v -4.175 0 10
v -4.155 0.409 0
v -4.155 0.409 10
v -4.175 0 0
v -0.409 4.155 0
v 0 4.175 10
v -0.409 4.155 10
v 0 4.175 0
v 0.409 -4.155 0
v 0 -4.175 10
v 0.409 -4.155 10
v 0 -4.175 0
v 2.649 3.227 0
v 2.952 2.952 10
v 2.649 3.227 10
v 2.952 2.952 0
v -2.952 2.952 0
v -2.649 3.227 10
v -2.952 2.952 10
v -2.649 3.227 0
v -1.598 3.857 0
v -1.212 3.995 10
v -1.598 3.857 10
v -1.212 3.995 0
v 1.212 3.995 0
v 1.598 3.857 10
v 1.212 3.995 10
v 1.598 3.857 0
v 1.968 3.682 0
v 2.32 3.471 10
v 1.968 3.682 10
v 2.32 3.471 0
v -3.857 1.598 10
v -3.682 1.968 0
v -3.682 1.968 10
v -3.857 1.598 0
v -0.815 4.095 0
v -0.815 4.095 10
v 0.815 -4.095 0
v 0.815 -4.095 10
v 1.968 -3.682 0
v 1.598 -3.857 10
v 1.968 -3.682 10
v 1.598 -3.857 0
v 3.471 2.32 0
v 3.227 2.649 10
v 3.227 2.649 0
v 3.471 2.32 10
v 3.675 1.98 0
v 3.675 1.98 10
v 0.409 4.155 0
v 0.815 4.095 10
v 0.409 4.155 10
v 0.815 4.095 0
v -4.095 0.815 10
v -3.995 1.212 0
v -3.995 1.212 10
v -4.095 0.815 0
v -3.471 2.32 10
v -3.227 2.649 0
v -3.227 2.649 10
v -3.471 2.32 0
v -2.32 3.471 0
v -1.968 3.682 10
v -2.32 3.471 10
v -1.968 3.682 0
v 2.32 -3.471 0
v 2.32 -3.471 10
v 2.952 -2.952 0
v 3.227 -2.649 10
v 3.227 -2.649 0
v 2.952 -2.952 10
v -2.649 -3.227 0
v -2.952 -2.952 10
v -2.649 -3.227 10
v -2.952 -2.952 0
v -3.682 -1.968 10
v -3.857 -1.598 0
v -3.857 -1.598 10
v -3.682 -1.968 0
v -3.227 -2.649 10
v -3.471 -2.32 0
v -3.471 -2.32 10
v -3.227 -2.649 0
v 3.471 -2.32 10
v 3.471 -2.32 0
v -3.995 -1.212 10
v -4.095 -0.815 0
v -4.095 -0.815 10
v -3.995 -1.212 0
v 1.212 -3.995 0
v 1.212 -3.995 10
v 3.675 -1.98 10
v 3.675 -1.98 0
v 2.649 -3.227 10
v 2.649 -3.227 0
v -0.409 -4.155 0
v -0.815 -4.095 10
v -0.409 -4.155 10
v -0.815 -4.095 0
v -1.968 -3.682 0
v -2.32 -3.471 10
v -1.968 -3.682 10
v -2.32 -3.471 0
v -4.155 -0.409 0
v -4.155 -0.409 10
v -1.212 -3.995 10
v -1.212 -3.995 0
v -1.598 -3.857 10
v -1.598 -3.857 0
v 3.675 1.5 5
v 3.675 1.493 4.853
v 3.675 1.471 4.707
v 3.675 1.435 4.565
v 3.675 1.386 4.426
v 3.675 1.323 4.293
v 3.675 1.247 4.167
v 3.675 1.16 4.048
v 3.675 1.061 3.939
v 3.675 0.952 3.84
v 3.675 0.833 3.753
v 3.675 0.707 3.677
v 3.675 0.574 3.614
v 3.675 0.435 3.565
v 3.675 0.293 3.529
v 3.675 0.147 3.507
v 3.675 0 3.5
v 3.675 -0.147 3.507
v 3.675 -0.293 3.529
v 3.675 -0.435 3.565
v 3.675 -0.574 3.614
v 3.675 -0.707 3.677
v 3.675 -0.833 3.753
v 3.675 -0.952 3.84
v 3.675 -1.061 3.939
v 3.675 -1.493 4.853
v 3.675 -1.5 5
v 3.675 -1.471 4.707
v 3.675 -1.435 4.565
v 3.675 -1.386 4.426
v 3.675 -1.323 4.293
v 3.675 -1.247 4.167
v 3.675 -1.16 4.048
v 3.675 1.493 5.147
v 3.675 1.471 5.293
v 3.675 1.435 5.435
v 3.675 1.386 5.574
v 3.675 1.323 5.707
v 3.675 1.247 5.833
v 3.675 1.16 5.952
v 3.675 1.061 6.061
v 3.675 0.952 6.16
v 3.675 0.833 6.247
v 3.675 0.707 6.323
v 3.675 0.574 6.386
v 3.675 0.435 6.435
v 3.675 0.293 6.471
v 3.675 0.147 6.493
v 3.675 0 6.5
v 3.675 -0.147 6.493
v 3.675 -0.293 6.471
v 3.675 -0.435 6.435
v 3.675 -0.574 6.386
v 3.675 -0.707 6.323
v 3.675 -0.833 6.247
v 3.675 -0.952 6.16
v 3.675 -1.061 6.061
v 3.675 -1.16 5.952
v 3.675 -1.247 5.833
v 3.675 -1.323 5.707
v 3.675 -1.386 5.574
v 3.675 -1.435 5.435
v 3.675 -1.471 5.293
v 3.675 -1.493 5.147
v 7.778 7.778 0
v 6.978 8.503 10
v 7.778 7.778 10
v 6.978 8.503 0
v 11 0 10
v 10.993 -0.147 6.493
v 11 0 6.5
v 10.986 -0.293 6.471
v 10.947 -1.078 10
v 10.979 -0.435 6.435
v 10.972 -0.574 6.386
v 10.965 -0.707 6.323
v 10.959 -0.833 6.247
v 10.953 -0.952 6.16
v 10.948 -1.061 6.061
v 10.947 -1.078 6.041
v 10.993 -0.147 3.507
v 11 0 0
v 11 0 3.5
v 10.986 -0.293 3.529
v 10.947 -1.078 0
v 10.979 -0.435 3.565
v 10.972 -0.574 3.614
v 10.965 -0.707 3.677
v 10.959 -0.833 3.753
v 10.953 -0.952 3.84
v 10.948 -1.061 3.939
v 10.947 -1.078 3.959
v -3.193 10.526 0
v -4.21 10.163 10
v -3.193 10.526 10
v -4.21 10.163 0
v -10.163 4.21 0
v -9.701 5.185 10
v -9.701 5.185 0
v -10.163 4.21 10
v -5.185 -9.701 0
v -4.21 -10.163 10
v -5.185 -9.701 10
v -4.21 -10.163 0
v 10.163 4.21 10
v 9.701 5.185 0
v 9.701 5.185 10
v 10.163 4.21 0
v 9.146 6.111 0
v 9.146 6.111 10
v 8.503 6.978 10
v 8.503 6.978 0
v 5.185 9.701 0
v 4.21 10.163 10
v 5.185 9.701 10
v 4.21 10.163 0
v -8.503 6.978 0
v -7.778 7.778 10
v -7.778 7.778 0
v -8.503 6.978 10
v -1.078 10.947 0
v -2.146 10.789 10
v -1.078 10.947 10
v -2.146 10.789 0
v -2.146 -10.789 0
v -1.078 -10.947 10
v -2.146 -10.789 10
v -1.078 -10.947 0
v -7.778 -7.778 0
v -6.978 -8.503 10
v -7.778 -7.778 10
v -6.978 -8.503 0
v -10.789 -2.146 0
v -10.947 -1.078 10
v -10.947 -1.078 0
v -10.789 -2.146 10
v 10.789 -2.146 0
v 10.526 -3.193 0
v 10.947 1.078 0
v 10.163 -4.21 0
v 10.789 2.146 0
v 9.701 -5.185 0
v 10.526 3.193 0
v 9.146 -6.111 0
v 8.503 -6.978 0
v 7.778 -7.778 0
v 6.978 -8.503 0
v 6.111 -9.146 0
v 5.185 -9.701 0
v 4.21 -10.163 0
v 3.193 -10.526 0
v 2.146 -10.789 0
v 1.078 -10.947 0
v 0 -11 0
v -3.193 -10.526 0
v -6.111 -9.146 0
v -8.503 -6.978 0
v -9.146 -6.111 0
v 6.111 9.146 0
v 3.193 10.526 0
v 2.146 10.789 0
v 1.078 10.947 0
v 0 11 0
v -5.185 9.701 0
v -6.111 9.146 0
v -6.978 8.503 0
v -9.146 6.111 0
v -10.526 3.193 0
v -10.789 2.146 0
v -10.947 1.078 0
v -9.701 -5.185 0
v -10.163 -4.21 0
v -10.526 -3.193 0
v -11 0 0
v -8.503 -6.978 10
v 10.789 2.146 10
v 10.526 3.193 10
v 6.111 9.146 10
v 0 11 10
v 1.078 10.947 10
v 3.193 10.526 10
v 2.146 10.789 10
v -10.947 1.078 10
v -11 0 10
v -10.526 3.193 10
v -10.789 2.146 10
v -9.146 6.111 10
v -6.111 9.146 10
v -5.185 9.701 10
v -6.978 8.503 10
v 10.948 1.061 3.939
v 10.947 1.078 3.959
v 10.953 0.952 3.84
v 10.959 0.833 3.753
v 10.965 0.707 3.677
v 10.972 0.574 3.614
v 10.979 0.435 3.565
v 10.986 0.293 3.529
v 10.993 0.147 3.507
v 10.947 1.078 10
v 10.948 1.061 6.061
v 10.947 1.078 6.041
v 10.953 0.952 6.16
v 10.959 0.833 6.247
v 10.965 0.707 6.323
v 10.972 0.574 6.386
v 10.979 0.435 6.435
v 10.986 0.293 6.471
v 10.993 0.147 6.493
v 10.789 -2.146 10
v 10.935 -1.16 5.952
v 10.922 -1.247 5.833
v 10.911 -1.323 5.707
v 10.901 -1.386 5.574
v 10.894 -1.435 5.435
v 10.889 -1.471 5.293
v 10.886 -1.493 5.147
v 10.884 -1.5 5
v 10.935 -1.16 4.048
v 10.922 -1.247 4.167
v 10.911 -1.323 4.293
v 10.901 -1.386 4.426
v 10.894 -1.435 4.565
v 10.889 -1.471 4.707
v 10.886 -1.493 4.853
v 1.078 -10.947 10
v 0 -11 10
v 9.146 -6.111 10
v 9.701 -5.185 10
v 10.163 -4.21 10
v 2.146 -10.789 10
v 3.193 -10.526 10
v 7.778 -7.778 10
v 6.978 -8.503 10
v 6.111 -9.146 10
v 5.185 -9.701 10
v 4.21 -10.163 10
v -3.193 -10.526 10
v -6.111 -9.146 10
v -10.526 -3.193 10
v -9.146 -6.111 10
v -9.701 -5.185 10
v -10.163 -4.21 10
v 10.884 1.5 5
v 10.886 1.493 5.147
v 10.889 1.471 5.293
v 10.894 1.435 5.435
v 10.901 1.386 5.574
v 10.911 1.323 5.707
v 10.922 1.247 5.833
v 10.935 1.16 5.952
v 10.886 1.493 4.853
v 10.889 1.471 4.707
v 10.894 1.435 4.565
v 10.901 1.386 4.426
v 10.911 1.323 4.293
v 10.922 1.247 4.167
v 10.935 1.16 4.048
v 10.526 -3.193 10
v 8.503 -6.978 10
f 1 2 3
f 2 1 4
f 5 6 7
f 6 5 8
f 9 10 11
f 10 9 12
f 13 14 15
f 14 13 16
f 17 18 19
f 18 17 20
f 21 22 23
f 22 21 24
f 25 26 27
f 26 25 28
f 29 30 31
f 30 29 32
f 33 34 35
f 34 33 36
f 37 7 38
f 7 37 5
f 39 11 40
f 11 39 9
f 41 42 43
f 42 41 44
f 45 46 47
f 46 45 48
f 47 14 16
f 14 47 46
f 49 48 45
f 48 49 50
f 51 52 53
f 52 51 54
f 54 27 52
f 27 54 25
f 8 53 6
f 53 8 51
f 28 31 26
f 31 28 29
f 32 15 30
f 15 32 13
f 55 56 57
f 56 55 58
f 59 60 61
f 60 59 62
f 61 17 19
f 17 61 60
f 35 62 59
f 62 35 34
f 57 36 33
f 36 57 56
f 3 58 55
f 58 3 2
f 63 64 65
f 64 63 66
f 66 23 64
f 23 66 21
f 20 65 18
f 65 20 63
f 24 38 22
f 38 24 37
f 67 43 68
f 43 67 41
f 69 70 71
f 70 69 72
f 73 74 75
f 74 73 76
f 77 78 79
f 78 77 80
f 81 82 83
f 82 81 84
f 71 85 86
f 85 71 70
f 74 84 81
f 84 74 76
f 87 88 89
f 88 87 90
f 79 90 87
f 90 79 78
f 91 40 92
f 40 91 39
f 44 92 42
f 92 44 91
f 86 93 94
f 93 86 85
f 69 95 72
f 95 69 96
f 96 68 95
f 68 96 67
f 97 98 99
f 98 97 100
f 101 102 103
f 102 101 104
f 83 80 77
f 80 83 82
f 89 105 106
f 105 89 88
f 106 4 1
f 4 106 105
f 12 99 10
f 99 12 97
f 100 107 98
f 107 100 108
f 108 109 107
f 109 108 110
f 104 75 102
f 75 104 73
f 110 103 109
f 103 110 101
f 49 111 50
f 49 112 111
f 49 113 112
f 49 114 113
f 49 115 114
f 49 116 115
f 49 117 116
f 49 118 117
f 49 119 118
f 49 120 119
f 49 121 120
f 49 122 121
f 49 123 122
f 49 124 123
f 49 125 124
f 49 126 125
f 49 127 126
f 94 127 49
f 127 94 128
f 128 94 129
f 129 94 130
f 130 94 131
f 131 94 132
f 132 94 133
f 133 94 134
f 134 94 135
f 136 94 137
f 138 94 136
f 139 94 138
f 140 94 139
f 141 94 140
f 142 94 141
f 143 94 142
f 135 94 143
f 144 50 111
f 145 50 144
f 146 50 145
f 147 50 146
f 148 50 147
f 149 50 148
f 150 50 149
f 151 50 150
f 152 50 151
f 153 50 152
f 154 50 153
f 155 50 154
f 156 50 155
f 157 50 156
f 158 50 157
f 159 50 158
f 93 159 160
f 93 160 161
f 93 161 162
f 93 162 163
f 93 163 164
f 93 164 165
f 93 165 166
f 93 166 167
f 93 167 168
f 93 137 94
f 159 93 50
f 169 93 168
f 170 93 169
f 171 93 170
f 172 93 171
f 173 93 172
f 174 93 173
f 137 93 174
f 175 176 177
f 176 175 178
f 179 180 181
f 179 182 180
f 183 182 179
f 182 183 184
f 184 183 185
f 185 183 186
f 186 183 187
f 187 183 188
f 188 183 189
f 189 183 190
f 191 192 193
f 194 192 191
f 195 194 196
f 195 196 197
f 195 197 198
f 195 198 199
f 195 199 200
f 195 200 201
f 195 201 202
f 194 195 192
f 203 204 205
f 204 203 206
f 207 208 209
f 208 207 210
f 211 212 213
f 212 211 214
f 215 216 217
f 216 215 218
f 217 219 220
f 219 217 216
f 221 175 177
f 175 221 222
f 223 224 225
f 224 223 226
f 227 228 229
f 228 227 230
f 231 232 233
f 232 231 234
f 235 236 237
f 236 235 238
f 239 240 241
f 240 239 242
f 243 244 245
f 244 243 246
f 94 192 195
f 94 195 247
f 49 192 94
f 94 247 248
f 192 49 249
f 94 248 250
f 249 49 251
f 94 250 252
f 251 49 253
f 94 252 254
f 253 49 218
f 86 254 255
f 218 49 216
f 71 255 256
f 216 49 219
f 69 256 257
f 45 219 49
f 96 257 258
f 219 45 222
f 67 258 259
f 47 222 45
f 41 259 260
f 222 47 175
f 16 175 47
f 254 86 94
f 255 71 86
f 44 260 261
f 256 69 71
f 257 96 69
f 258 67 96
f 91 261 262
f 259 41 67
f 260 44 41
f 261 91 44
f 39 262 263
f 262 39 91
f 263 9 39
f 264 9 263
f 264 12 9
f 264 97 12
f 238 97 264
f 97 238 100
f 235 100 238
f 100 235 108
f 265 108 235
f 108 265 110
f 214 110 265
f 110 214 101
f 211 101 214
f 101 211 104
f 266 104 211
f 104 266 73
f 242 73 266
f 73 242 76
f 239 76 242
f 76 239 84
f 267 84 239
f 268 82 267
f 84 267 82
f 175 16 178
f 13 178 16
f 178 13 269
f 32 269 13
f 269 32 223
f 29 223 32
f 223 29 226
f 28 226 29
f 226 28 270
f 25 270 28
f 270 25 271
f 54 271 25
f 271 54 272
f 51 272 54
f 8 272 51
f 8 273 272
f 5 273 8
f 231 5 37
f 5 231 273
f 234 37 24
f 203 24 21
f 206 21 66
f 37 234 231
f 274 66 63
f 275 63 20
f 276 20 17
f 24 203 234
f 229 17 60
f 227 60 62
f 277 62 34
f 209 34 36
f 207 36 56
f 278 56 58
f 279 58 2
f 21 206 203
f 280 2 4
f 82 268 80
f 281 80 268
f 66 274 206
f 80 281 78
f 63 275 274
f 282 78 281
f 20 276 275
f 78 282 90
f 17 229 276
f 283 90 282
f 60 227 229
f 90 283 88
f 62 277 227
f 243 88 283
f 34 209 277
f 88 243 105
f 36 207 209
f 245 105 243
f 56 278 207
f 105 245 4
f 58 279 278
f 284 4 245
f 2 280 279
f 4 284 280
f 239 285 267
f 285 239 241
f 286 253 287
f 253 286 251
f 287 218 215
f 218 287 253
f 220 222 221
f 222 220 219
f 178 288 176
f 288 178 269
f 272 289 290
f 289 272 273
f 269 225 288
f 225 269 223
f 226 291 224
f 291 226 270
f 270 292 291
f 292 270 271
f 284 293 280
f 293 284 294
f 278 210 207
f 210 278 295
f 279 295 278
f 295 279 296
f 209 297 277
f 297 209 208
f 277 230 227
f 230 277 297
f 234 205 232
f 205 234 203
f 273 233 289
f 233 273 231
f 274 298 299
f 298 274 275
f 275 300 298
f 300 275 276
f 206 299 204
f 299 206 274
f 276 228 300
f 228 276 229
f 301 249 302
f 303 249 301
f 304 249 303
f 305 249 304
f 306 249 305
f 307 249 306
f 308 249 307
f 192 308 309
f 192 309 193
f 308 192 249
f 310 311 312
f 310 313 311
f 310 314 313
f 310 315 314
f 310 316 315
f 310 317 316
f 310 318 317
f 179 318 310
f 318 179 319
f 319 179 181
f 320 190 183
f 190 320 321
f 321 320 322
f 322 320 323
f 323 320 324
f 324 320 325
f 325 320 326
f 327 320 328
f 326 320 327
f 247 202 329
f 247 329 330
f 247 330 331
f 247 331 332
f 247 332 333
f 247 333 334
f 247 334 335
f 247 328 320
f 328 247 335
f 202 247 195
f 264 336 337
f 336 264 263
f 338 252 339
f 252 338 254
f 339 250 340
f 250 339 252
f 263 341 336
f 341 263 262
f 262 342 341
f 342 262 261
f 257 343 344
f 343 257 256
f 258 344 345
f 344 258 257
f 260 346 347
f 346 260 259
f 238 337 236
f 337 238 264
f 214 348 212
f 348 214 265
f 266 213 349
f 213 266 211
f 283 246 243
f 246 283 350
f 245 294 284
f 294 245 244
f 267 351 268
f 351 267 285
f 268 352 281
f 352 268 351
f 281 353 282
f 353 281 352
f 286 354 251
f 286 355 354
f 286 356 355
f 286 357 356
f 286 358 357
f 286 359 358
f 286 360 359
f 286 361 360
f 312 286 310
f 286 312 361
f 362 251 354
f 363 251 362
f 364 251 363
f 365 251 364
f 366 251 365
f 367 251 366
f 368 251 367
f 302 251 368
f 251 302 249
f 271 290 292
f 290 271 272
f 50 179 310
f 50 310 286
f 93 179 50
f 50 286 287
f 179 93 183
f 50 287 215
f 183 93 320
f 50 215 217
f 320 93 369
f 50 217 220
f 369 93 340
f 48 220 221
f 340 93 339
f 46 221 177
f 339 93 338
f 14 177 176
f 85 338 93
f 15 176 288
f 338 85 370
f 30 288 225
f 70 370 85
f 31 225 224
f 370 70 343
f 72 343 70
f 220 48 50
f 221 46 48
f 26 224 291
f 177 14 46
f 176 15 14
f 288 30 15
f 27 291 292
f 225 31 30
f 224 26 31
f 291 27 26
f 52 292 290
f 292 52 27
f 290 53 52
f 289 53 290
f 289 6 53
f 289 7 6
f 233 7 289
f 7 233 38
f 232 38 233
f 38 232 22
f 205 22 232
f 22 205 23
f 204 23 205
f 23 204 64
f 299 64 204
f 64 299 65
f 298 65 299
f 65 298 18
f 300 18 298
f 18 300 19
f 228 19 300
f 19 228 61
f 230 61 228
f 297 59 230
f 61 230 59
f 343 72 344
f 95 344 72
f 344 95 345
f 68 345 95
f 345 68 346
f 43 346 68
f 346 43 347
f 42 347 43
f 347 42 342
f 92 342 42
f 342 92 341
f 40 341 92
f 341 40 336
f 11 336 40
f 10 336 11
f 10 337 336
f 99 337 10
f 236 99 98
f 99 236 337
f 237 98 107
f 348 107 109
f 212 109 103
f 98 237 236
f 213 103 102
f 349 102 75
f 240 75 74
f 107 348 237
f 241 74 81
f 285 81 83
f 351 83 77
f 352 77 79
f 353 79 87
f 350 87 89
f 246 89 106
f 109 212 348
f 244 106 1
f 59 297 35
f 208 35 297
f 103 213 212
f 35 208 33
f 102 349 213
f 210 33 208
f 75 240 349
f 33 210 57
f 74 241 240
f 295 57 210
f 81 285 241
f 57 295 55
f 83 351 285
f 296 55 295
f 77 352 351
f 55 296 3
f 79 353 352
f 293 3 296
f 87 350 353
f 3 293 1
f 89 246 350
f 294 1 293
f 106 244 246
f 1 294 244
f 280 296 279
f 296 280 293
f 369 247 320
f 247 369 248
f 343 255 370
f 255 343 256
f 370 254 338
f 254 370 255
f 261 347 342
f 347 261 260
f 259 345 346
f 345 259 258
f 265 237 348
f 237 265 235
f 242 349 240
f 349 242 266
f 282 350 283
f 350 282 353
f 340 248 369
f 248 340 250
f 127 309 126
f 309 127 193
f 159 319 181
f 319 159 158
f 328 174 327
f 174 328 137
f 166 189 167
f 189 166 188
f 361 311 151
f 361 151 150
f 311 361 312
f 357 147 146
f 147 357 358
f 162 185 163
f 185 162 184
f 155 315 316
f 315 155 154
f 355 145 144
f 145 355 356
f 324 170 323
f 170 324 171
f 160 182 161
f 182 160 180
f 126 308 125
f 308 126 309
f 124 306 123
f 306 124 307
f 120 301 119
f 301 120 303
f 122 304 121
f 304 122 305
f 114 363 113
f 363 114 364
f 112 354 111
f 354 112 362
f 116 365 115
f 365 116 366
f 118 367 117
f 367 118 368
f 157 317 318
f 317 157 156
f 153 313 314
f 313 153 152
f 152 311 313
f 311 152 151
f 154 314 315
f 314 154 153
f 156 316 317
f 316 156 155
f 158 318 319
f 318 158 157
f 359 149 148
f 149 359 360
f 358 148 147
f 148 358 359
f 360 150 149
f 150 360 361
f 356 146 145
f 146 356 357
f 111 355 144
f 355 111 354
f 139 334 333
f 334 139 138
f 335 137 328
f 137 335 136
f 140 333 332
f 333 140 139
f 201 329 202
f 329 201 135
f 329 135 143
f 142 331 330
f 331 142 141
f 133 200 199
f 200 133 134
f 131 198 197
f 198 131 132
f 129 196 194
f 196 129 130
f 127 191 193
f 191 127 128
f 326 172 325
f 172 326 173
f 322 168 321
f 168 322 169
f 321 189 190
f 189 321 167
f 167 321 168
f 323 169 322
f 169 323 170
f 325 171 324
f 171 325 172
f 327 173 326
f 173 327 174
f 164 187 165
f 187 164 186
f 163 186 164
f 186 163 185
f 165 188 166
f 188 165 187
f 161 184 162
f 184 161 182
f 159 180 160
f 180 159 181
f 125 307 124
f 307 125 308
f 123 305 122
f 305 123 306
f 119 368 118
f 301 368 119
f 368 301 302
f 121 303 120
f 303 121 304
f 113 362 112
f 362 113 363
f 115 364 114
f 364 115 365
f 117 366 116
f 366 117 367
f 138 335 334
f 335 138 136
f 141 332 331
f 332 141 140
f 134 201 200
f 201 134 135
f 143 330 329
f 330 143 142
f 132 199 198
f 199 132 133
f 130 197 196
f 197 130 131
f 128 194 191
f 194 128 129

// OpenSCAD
// file: parameters.scad
// =============================================================================
// Gen-CF — nightly 2026-10-14 (physics_scorer, honest magpylib watts)
// Stator-only upgrade for an existing Gen-CA: the R84 arcs, hubs and Ø194 steel stay as they are; a new annular 12-bobbin stator with 4.65 mm copper (Gen-CD-style thin window) and r63–105 bobbins replaces the old r64–104 × 4.95 mm stator, together with a shorter gap sleeve and matching frame rods / bridges. Frame rods pushed to R108.5 for ≥1.0 mm web to the bays. No new magnets or steel. Scans showed no R84 stator beats Gen-CA’s own 8.492 W; this kit is the best distinct modular swap (≈8.41 W scan, ≈375 m).
// Clocking 0 deg (magnets N facing S) + D-flat keyed bore + index notch + flip-symmetric hole map.
// Windable 2-piece bobbin; turns = physics_scorer turns_fit; copper only between flanges.
// Steel back-iron: 2× Ø194 × 4.76 mm (3/16") mild-steel discs (steel_backiron_disc.dxf); magnets sit ON the steel
// (through-pockets) -> score with --back-iron. Night 2026-10-14.
// =============================================================================
topology            = "dual_rotor";

// --- Wire / winding (physics_scorer winding-fit) -------------------------------
wire_awg            = 26;
wire_od             = 0.45;     // insulated OD mm (bare 0.405)
fill_realistic      = 0.65;     // insulated-wire area / window (DENSE layered wind with a jig; scorer cap 0.65)
turns               = 347;       // = physics_scorer turns_fit (do NOT raise)
coil_former_type    = "bobbin";
coil_core_inset     = 18.26;     // radial copper build: hub = copper boundary inset by this
wind_build_axial    = 0.0;      // nothing proud of the flanges
wind_build_radial   = 0.0;

// --- Bobbin (base + lid) ---------------------------------------------------------
coil_id_r           = 63.00;    // copper boundary sector
coil_od_r           = 105.00;
span_deg            = 26.82;    // = pitch - 2*asin((wall+0.85)/coil_id_r) -> >=1.2 mm stator web
former_web          = 4.65;     // copper height between flanges (TALL copper: steel keeps Bz up)
flange_t            = 0.80;     // >= 0.8 mm FDM wall rule (tall winds push on the flanges)
wall                = 0.80;     // flange lip beyond copper
former_bare_h       = former_web + 2 * flange_t;
coil_envelope_h     = former_bare_h + 2 * wind_build_axial;
tab_w               = 7.0;
tab_len             = 7.0;
tab_h               = former_bare_h / 2;
pin_d               = 1.9;      // 1.75 mm filament locating pin
coil_mount_r        = coil_od_r + 0.2 + 4.0;
lead_y              = 1.6;
lead_slot_w         = 0.9;
lead_groove_d       = 0.6;

// --- Gap -------------------------------------------------------------------------
run_clear           = 0.50;     // rotor face -> flange
gap_spacer_h        = run_clear + wind_build_axial;
m2m                 = coil_envelope_h + 2 * run_clear;   // rotor face to rotor face (= gap_sleeve length)

// --- Stator ----------------------------------------------------------------------
coil_stations       = 12;
bay_clear           = 0.35;     // 0.35 mm: bobbin BASES print IN PLACE inside the stator bays (print-in-place gap), then pop out
stator_thick        = former_bare_h;                        // bobbins flush both faces
stator_od           = 228;
shaft_clear_stator  = 14.0;     // stator is static; gap sleeve OD 12 spins inside
stator_ir           = 57.85;    // ANNULAR stator: open centre (nested one-plate pack); inner rim 4.0 mm

// --- Rotor(s) --------------------------------------------------------------------
magnet_Br           = 1.43;     // N52
magnet_d_large      = 20.0;
magnet_h_large      = 5.0;      // one O20x5 per pocket
magnet_h_small      = 5.0;      // unused: no O5 pockets in this kit
halbach_magnetisation = "none";  // NO O5 assist magnets in this kit (scan: they lower the 4-pole score)
rotor_b_same_axis   = true;     // same-index magnets share one axis: N faces S across the gap
large_pocket_d      = 20.3;
small_pocket_d      = 5.3;
pocket_h            = 5.00;     // THROUGH the carrier: magnet back face sits on the steel disc (FLUSH seat: carrier = magnet height, magnet face level with the rotor face)
large_n             = 8;
R_large             = 84.0;
small_r_list        = [];       // no O5 pockets
carrier_od          = 194.0;
ring_ir             = 70.85;    // RING rotor: PLA magnet ring r ring_ir..carrier_od/2 (steel disc = structural rotor)
hub_flange_od       = 74.0;     // separate rotor_hub flange (inside the ring, flush with the ring face)
csk_d               = 6.6;      // M3 countersunk head pocket (ISO 10642 head 6.0 nominal) on the stator face
csk_depth           = 1.55;     // = (csk_d - m3_clear) / 2: 90 deg cone; head sits 0.3 mm below the face
n_seg               = 8;        // magnet-carrier ARCS per rotor (segmented carrier)
seg_deg             = 360 / n_seg;
seg_start           = -22.5;   // arc edge angle (between pocket 0 and its clamp bolt)
seg_kerf_deg        = 0.4;      // gap between neighbouring arcs on the steel
carrier_thick       = pocket_h;
hub_h               = 12.0;     // > steel_t + insert: radial set-screw clears the steel
hub_od              = 24.0;     // slim hub so the M4 brace rods fit at R~18 inside the coil ring
hub_insert_d        = 4.0;      // M3 heat-set insert, radial, bears on the D-flat
rotor_b_offset_deg  = 0.0;      // CLOCKING: magnets directly opposite
shaft_key           = "dflat";
dflat_depth         = 0.5;      // 8 mm shaft with 0.5 mm flat (7.5 across flat)
index_notch_d       = 3.0;

// --- Steel back-iron (buyable laser-cut) -------------------------------------------
steel_t             = 4.76;      // mild steel thickness (image method ignores it; sized from steel_flux.py so the return path stays well below saturation)
steel_center_hole   = 26.0;     // slips over the rotor hub (OD 24)
steel_od            = carrier_od;   // steel disc OD = rotor carrier OD

// --- Modular MAX interface ----------------------------------------------------------
shaft_bore          = 8.35;
dflat_x             = 4.0 - dflat_depth + (shaft_bore - 8.0) / 2;
bearing_d           = 21.85;
bearing_h           = 7.2;
m3_clear            = 3.5;
bolt_r_inner        = 30.0;     // M3 steel-disc clamp bolts (inside the magnet ring)
bolt_n_inner        = 4;
bolt_inner_angles   = [0, 90, 180, 270];
bolt_r_outer        = 84.0;     // second M3 steel-disc clamp ring
bolt_outer_angles   = [22.5, 67.5, 112.5, 157.5, 202.5, 247.5, 292.5, 337.5];
flange_bolt_r       = 108.5;     // frame rods: OUTSIDE the rotor OD (rotors spin inside them)
flange_bolt_n       = 4;
flange_bolt_offset  = 45.00;    // between coil stations -> never cuts a lead groove/tab
brace_r             = 18.0;
brace_d             = 4.3;      // temporary M4 jack rods (assembly only)
brace_n             = 4;
brace_angles        = [45, 135, 225, 315];          // flip-symmetric

spacer_pad_od       = 14.0;
spacer_pad_id       = m3_clear;
endbell_od          = 227.0;
endbell_thick       = 8.0;
endbell_shaft_clear = 10.0;
collar_h            = 10.0;
standoff_od         = 9.0;
frame_standoff_h    = run_clear + carrier_thick + hub_h + collar_h + 2.0;
sleeve_od           = 12.0;
plate_max_mm        = 410;

$fn = 64;
// main file
// Gen-CF — shaft collar with D-flat bore (set screw bears on the flat); print x4
include <parameters.scad>;
$fn = 64;
// D-flat keyed bore: flat faces +X (angle 0 = magnet pocket 0 = index notch)
module dflat_bore(h) {
    intersection() {
        cylinder(d=shaft_bore, h=h);
        translate([-shaft_bore, -shaft_bore, 0]) cube([shaft_bore + dflat_x, 2*shaft_bore, h]);
    }
}

od = 22; h = collar_h; set_d = 3.0;
difference() {
    cylinder(d=od, h=h);
    translate([0, 0, -0.1]) dflat_bore(h + 0.2);
    translate([0, 0, h/2]) rotate([0, 90, 0]) cylinder(d=set_d, h=od);
}
